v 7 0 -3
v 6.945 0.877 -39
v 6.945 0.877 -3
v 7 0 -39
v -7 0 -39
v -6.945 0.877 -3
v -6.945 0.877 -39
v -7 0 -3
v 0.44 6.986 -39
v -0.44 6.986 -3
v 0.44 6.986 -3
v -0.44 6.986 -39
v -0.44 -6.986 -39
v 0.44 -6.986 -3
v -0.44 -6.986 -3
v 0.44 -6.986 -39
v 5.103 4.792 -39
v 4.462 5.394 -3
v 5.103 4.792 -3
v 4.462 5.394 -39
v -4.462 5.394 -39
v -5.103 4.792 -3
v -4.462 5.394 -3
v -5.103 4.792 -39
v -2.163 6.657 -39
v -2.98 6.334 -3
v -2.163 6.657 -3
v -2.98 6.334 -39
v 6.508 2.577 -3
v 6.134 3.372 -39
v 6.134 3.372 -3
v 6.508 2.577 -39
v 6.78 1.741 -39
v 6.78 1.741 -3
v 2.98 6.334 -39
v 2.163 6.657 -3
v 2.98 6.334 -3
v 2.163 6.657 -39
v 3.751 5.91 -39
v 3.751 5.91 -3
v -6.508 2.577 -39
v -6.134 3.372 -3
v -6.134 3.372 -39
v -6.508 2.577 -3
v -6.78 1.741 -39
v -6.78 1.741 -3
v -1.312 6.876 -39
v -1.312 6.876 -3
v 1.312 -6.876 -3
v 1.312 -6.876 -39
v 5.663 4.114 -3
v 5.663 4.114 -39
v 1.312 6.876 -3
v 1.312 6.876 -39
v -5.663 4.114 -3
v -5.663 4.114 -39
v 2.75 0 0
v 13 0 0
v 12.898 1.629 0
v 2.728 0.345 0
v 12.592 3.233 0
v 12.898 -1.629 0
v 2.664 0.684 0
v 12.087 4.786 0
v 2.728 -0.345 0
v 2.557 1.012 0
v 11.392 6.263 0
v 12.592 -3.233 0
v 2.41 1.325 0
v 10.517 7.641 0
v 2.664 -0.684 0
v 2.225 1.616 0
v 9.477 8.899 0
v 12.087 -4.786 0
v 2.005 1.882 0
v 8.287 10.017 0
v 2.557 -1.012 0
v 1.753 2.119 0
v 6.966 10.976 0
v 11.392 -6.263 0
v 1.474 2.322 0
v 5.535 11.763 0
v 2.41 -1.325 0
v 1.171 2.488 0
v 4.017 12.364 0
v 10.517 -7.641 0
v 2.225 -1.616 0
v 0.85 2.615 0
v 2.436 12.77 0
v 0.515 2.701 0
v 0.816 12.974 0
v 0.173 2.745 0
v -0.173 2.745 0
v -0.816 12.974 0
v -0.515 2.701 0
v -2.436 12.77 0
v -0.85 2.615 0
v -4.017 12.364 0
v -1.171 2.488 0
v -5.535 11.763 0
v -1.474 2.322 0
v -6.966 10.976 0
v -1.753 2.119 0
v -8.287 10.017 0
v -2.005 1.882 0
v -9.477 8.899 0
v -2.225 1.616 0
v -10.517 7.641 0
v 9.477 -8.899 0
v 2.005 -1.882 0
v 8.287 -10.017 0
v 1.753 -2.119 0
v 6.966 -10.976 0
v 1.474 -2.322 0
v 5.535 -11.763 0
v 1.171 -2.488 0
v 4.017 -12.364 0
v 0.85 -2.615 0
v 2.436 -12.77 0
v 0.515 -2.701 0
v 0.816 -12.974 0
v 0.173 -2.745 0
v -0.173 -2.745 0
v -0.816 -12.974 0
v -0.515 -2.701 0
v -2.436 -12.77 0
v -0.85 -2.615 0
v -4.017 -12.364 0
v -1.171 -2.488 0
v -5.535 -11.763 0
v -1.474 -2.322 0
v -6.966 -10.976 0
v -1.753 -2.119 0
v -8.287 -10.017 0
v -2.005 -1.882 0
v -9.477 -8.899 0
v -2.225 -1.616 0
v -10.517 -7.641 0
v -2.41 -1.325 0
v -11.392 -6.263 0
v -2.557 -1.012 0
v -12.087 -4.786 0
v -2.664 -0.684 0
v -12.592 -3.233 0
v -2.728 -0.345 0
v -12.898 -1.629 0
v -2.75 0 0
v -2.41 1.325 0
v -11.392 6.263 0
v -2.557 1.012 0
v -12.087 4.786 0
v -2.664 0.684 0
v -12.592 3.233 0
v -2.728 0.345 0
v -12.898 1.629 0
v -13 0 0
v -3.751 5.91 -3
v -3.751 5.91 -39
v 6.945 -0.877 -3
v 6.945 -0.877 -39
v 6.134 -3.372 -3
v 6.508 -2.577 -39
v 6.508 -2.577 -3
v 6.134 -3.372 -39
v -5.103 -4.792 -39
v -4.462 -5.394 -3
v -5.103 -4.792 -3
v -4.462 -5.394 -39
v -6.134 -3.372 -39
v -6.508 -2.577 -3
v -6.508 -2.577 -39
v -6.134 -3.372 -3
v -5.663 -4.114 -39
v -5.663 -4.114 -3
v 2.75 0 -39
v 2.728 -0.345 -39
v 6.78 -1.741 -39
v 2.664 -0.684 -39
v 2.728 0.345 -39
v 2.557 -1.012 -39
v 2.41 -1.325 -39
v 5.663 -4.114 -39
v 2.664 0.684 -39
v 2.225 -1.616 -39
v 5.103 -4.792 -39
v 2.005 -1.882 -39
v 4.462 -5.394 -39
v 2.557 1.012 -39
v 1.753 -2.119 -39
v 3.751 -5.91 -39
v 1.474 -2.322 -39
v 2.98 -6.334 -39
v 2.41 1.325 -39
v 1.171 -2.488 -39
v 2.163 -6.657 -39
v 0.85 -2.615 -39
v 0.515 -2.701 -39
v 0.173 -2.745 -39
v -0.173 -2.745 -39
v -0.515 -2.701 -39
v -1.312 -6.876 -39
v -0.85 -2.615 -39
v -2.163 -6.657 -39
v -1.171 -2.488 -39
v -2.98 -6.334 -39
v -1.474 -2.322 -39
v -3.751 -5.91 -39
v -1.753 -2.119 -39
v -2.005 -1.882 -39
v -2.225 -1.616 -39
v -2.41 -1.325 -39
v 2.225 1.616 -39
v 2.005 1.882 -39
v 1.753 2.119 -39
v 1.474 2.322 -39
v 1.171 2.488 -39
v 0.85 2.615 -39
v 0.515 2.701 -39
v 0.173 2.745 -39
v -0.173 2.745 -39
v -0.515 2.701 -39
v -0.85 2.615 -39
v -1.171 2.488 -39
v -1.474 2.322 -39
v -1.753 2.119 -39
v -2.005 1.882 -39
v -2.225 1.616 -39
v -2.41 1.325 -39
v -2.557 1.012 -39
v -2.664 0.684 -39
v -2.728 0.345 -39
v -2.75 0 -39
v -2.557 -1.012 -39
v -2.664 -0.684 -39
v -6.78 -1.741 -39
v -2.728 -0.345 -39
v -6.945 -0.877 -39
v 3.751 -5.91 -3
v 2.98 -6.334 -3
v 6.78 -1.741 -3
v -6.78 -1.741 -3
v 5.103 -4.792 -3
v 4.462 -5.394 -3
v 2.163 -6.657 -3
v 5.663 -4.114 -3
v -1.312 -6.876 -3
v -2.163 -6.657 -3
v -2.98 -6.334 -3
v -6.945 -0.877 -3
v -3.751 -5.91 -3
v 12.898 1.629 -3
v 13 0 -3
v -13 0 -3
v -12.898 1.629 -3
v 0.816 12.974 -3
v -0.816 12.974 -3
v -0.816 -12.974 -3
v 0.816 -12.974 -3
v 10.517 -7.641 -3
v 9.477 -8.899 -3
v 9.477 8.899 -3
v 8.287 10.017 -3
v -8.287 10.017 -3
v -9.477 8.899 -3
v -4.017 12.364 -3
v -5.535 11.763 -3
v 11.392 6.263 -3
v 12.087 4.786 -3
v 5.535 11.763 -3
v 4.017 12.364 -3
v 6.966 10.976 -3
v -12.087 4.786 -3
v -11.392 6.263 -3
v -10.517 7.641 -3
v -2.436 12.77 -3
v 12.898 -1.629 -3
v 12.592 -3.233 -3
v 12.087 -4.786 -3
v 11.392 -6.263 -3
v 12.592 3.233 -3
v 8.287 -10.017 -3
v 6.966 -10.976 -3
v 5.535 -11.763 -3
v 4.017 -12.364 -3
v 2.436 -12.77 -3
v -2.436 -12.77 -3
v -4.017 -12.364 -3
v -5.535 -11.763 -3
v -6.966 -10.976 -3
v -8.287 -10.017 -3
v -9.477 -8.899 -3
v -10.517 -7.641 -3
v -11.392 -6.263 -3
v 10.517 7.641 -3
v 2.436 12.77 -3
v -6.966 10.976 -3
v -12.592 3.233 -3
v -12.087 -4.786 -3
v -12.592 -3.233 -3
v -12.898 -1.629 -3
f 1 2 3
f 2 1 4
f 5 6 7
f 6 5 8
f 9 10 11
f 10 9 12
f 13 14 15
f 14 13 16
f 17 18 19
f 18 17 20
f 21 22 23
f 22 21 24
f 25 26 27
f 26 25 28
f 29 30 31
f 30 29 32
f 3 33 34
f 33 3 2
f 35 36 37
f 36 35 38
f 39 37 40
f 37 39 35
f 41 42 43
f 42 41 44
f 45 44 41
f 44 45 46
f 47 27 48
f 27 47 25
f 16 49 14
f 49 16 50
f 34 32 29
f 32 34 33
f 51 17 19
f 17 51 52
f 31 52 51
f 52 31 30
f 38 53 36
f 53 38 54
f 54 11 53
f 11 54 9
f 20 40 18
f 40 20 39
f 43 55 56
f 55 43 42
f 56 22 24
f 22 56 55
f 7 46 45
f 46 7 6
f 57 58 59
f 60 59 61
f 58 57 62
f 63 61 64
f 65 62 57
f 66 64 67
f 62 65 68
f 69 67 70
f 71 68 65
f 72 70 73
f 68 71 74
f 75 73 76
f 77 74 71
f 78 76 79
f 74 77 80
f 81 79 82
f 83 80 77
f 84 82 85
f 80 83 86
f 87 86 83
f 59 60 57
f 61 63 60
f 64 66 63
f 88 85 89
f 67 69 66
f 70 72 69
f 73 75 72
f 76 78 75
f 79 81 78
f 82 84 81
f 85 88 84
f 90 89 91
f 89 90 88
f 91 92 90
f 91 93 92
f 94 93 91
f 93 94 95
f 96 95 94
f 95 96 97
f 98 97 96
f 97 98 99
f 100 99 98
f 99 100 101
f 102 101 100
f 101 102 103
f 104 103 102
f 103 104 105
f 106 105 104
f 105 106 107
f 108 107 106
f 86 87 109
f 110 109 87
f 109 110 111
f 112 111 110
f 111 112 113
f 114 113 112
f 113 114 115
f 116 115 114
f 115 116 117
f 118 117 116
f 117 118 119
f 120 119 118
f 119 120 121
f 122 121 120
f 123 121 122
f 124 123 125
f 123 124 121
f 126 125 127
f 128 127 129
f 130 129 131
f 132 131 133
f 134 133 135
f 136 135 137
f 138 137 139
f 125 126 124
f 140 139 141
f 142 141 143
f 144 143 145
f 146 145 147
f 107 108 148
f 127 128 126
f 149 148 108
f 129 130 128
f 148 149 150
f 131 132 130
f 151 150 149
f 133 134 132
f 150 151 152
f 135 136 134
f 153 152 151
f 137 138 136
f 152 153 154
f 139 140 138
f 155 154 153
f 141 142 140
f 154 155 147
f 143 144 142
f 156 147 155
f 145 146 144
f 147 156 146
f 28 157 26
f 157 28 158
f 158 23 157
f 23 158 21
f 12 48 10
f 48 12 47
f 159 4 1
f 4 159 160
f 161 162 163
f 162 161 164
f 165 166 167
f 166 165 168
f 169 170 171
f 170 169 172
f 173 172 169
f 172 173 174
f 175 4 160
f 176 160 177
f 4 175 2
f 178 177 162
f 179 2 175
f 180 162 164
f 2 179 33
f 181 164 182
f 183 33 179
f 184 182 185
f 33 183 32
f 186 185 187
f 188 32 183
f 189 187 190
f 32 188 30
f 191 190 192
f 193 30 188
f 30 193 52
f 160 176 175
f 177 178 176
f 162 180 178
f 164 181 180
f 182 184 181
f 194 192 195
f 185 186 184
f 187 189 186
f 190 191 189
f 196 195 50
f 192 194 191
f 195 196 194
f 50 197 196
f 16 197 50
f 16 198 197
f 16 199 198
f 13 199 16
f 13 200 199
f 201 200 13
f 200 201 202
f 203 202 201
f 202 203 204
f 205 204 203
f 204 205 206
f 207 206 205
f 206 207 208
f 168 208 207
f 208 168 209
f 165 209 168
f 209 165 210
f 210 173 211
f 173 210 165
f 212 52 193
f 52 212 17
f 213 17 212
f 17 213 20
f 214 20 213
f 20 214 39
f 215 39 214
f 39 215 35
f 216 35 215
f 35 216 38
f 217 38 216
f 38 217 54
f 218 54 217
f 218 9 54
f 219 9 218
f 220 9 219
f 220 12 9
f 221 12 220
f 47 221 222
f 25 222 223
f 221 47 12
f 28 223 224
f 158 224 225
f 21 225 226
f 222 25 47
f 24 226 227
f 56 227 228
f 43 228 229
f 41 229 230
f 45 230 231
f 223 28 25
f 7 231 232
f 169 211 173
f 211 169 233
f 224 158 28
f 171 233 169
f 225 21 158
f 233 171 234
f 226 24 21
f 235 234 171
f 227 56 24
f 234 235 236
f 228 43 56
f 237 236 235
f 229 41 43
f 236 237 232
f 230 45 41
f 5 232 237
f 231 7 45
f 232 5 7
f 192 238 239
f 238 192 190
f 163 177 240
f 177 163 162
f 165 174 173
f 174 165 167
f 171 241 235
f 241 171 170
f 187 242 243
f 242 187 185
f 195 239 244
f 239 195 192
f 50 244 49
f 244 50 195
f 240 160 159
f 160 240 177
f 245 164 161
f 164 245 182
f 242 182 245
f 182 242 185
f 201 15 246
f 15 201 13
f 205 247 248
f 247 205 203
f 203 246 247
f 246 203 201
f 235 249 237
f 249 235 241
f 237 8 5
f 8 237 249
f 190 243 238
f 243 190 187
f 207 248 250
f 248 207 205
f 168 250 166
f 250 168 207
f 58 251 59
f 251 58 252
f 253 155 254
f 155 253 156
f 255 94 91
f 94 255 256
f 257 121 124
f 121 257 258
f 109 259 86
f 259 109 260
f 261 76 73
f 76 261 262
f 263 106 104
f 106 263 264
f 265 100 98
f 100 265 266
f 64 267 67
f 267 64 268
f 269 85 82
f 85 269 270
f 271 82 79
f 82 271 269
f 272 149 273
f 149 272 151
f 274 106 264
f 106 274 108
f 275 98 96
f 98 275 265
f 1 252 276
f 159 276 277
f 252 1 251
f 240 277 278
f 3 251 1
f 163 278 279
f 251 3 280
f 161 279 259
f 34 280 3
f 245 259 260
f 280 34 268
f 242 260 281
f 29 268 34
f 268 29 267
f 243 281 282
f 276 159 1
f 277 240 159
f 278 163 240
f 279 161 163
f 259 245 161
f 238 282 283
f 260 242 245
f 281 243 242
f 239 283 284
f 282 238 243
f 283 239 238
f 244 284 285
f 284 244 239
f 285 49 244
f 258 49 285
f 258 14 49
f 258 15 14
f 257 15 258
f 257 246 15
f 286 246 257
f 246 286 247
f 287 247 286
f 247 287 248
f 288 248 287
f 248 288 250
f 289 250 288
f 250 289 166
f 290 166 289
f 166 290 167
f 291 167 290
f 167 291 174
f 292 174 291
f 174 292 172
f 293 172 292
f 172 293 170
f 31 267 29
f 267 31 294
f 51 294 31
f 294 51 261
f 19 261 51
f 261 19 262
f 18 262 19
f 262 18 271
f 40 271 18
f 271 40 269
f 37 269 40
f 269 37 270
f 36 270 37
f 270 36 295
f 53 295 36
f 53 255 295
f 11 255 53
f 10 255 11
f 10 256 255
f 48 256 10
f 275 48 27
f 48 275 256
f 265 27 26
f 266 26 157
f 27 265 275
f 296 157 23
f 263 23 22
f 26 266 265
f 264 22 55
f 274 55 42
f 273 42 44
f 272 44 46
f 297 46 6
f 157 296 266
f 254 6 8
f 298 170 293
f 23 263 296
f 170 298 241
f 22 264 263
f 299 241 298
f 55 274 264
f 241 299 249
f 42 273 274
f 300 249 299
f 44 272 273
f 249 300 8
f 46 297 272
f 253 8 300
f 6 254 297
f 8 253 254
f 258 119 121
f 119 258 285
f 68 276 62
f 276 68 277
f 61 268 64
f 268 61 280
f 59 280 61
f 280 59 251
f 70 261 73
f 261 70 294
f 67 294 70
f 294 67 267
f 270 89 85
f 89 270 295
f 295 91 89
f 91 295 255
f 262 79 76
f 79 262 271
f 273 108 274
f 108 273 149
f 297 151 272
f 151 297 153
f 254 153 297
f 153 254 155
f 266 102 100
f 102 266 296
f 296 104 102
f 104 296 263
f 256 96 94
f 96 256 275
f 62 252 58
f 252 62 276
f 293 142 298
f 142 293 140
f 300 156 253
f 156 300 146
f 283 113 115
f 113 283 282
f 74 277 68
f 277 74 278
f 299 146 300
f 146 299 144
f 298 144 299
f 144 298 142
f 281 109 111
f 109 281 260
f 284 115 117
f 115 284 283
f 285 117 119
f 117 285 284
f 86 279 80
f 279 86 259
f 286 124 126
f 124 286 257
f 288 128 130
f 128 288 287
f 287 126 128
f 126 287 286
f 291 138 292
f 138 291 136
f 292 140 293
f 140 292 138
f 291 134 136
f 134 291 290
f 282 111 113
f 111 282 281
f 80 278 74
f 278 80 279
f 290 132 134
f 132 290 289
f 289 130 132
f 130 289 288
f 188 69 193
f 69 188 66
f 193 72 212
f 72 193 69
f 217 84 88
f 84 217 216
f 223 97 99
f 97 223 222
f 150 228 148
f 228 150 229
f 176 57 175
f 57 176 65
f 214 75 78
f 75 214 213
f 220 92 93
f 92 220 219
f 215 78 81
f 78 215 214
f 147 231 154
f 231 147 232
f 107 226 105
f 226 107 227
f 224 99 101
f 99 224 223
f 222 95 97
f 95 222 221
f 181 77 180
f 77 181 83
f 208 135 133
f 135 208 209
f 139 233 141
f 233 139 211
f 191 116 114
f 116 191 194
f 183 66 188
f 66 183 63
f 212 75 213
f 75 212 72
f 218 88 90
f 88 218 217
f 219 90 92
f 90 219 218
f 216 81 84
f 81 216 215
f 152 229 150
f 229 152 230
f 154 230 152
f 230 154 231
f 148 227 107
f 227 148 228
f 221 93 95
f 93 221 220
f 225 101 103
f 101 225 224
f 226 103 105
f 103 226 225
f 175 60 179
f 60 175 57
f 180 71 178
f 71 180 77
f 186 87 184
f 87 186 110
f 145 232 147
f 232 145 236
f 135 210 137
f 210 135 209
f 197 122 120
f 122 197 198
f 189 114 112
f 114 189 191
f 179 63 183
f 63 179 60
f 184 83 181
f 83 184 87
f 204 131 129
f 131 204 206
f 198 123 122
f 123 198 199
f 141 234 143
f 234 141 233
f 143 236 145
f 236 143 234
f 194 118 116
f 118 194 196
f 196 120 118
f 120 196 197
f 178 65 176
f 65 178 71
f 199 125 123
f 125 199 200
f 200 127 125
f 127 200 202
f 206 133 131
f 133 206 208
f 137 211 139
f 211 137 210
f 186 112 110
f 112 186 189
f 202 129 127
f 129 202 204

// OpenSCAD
$fn = 50;


difference() {
	union() {
		translate(v = [0, 0, -39.0000000000]) {
			cylinder(h = 39, r = 7.0000000000);
		}
		translate(v = [0, 0, -3.0000000000]) {
			cylinder(h = 3, r = 13.0000000000);
		}
	}
	union() {
		#translate(v = [0, 0, -39]) {
			cylinder(h = 39, r = 2.7500000000);
		}
	}
}
